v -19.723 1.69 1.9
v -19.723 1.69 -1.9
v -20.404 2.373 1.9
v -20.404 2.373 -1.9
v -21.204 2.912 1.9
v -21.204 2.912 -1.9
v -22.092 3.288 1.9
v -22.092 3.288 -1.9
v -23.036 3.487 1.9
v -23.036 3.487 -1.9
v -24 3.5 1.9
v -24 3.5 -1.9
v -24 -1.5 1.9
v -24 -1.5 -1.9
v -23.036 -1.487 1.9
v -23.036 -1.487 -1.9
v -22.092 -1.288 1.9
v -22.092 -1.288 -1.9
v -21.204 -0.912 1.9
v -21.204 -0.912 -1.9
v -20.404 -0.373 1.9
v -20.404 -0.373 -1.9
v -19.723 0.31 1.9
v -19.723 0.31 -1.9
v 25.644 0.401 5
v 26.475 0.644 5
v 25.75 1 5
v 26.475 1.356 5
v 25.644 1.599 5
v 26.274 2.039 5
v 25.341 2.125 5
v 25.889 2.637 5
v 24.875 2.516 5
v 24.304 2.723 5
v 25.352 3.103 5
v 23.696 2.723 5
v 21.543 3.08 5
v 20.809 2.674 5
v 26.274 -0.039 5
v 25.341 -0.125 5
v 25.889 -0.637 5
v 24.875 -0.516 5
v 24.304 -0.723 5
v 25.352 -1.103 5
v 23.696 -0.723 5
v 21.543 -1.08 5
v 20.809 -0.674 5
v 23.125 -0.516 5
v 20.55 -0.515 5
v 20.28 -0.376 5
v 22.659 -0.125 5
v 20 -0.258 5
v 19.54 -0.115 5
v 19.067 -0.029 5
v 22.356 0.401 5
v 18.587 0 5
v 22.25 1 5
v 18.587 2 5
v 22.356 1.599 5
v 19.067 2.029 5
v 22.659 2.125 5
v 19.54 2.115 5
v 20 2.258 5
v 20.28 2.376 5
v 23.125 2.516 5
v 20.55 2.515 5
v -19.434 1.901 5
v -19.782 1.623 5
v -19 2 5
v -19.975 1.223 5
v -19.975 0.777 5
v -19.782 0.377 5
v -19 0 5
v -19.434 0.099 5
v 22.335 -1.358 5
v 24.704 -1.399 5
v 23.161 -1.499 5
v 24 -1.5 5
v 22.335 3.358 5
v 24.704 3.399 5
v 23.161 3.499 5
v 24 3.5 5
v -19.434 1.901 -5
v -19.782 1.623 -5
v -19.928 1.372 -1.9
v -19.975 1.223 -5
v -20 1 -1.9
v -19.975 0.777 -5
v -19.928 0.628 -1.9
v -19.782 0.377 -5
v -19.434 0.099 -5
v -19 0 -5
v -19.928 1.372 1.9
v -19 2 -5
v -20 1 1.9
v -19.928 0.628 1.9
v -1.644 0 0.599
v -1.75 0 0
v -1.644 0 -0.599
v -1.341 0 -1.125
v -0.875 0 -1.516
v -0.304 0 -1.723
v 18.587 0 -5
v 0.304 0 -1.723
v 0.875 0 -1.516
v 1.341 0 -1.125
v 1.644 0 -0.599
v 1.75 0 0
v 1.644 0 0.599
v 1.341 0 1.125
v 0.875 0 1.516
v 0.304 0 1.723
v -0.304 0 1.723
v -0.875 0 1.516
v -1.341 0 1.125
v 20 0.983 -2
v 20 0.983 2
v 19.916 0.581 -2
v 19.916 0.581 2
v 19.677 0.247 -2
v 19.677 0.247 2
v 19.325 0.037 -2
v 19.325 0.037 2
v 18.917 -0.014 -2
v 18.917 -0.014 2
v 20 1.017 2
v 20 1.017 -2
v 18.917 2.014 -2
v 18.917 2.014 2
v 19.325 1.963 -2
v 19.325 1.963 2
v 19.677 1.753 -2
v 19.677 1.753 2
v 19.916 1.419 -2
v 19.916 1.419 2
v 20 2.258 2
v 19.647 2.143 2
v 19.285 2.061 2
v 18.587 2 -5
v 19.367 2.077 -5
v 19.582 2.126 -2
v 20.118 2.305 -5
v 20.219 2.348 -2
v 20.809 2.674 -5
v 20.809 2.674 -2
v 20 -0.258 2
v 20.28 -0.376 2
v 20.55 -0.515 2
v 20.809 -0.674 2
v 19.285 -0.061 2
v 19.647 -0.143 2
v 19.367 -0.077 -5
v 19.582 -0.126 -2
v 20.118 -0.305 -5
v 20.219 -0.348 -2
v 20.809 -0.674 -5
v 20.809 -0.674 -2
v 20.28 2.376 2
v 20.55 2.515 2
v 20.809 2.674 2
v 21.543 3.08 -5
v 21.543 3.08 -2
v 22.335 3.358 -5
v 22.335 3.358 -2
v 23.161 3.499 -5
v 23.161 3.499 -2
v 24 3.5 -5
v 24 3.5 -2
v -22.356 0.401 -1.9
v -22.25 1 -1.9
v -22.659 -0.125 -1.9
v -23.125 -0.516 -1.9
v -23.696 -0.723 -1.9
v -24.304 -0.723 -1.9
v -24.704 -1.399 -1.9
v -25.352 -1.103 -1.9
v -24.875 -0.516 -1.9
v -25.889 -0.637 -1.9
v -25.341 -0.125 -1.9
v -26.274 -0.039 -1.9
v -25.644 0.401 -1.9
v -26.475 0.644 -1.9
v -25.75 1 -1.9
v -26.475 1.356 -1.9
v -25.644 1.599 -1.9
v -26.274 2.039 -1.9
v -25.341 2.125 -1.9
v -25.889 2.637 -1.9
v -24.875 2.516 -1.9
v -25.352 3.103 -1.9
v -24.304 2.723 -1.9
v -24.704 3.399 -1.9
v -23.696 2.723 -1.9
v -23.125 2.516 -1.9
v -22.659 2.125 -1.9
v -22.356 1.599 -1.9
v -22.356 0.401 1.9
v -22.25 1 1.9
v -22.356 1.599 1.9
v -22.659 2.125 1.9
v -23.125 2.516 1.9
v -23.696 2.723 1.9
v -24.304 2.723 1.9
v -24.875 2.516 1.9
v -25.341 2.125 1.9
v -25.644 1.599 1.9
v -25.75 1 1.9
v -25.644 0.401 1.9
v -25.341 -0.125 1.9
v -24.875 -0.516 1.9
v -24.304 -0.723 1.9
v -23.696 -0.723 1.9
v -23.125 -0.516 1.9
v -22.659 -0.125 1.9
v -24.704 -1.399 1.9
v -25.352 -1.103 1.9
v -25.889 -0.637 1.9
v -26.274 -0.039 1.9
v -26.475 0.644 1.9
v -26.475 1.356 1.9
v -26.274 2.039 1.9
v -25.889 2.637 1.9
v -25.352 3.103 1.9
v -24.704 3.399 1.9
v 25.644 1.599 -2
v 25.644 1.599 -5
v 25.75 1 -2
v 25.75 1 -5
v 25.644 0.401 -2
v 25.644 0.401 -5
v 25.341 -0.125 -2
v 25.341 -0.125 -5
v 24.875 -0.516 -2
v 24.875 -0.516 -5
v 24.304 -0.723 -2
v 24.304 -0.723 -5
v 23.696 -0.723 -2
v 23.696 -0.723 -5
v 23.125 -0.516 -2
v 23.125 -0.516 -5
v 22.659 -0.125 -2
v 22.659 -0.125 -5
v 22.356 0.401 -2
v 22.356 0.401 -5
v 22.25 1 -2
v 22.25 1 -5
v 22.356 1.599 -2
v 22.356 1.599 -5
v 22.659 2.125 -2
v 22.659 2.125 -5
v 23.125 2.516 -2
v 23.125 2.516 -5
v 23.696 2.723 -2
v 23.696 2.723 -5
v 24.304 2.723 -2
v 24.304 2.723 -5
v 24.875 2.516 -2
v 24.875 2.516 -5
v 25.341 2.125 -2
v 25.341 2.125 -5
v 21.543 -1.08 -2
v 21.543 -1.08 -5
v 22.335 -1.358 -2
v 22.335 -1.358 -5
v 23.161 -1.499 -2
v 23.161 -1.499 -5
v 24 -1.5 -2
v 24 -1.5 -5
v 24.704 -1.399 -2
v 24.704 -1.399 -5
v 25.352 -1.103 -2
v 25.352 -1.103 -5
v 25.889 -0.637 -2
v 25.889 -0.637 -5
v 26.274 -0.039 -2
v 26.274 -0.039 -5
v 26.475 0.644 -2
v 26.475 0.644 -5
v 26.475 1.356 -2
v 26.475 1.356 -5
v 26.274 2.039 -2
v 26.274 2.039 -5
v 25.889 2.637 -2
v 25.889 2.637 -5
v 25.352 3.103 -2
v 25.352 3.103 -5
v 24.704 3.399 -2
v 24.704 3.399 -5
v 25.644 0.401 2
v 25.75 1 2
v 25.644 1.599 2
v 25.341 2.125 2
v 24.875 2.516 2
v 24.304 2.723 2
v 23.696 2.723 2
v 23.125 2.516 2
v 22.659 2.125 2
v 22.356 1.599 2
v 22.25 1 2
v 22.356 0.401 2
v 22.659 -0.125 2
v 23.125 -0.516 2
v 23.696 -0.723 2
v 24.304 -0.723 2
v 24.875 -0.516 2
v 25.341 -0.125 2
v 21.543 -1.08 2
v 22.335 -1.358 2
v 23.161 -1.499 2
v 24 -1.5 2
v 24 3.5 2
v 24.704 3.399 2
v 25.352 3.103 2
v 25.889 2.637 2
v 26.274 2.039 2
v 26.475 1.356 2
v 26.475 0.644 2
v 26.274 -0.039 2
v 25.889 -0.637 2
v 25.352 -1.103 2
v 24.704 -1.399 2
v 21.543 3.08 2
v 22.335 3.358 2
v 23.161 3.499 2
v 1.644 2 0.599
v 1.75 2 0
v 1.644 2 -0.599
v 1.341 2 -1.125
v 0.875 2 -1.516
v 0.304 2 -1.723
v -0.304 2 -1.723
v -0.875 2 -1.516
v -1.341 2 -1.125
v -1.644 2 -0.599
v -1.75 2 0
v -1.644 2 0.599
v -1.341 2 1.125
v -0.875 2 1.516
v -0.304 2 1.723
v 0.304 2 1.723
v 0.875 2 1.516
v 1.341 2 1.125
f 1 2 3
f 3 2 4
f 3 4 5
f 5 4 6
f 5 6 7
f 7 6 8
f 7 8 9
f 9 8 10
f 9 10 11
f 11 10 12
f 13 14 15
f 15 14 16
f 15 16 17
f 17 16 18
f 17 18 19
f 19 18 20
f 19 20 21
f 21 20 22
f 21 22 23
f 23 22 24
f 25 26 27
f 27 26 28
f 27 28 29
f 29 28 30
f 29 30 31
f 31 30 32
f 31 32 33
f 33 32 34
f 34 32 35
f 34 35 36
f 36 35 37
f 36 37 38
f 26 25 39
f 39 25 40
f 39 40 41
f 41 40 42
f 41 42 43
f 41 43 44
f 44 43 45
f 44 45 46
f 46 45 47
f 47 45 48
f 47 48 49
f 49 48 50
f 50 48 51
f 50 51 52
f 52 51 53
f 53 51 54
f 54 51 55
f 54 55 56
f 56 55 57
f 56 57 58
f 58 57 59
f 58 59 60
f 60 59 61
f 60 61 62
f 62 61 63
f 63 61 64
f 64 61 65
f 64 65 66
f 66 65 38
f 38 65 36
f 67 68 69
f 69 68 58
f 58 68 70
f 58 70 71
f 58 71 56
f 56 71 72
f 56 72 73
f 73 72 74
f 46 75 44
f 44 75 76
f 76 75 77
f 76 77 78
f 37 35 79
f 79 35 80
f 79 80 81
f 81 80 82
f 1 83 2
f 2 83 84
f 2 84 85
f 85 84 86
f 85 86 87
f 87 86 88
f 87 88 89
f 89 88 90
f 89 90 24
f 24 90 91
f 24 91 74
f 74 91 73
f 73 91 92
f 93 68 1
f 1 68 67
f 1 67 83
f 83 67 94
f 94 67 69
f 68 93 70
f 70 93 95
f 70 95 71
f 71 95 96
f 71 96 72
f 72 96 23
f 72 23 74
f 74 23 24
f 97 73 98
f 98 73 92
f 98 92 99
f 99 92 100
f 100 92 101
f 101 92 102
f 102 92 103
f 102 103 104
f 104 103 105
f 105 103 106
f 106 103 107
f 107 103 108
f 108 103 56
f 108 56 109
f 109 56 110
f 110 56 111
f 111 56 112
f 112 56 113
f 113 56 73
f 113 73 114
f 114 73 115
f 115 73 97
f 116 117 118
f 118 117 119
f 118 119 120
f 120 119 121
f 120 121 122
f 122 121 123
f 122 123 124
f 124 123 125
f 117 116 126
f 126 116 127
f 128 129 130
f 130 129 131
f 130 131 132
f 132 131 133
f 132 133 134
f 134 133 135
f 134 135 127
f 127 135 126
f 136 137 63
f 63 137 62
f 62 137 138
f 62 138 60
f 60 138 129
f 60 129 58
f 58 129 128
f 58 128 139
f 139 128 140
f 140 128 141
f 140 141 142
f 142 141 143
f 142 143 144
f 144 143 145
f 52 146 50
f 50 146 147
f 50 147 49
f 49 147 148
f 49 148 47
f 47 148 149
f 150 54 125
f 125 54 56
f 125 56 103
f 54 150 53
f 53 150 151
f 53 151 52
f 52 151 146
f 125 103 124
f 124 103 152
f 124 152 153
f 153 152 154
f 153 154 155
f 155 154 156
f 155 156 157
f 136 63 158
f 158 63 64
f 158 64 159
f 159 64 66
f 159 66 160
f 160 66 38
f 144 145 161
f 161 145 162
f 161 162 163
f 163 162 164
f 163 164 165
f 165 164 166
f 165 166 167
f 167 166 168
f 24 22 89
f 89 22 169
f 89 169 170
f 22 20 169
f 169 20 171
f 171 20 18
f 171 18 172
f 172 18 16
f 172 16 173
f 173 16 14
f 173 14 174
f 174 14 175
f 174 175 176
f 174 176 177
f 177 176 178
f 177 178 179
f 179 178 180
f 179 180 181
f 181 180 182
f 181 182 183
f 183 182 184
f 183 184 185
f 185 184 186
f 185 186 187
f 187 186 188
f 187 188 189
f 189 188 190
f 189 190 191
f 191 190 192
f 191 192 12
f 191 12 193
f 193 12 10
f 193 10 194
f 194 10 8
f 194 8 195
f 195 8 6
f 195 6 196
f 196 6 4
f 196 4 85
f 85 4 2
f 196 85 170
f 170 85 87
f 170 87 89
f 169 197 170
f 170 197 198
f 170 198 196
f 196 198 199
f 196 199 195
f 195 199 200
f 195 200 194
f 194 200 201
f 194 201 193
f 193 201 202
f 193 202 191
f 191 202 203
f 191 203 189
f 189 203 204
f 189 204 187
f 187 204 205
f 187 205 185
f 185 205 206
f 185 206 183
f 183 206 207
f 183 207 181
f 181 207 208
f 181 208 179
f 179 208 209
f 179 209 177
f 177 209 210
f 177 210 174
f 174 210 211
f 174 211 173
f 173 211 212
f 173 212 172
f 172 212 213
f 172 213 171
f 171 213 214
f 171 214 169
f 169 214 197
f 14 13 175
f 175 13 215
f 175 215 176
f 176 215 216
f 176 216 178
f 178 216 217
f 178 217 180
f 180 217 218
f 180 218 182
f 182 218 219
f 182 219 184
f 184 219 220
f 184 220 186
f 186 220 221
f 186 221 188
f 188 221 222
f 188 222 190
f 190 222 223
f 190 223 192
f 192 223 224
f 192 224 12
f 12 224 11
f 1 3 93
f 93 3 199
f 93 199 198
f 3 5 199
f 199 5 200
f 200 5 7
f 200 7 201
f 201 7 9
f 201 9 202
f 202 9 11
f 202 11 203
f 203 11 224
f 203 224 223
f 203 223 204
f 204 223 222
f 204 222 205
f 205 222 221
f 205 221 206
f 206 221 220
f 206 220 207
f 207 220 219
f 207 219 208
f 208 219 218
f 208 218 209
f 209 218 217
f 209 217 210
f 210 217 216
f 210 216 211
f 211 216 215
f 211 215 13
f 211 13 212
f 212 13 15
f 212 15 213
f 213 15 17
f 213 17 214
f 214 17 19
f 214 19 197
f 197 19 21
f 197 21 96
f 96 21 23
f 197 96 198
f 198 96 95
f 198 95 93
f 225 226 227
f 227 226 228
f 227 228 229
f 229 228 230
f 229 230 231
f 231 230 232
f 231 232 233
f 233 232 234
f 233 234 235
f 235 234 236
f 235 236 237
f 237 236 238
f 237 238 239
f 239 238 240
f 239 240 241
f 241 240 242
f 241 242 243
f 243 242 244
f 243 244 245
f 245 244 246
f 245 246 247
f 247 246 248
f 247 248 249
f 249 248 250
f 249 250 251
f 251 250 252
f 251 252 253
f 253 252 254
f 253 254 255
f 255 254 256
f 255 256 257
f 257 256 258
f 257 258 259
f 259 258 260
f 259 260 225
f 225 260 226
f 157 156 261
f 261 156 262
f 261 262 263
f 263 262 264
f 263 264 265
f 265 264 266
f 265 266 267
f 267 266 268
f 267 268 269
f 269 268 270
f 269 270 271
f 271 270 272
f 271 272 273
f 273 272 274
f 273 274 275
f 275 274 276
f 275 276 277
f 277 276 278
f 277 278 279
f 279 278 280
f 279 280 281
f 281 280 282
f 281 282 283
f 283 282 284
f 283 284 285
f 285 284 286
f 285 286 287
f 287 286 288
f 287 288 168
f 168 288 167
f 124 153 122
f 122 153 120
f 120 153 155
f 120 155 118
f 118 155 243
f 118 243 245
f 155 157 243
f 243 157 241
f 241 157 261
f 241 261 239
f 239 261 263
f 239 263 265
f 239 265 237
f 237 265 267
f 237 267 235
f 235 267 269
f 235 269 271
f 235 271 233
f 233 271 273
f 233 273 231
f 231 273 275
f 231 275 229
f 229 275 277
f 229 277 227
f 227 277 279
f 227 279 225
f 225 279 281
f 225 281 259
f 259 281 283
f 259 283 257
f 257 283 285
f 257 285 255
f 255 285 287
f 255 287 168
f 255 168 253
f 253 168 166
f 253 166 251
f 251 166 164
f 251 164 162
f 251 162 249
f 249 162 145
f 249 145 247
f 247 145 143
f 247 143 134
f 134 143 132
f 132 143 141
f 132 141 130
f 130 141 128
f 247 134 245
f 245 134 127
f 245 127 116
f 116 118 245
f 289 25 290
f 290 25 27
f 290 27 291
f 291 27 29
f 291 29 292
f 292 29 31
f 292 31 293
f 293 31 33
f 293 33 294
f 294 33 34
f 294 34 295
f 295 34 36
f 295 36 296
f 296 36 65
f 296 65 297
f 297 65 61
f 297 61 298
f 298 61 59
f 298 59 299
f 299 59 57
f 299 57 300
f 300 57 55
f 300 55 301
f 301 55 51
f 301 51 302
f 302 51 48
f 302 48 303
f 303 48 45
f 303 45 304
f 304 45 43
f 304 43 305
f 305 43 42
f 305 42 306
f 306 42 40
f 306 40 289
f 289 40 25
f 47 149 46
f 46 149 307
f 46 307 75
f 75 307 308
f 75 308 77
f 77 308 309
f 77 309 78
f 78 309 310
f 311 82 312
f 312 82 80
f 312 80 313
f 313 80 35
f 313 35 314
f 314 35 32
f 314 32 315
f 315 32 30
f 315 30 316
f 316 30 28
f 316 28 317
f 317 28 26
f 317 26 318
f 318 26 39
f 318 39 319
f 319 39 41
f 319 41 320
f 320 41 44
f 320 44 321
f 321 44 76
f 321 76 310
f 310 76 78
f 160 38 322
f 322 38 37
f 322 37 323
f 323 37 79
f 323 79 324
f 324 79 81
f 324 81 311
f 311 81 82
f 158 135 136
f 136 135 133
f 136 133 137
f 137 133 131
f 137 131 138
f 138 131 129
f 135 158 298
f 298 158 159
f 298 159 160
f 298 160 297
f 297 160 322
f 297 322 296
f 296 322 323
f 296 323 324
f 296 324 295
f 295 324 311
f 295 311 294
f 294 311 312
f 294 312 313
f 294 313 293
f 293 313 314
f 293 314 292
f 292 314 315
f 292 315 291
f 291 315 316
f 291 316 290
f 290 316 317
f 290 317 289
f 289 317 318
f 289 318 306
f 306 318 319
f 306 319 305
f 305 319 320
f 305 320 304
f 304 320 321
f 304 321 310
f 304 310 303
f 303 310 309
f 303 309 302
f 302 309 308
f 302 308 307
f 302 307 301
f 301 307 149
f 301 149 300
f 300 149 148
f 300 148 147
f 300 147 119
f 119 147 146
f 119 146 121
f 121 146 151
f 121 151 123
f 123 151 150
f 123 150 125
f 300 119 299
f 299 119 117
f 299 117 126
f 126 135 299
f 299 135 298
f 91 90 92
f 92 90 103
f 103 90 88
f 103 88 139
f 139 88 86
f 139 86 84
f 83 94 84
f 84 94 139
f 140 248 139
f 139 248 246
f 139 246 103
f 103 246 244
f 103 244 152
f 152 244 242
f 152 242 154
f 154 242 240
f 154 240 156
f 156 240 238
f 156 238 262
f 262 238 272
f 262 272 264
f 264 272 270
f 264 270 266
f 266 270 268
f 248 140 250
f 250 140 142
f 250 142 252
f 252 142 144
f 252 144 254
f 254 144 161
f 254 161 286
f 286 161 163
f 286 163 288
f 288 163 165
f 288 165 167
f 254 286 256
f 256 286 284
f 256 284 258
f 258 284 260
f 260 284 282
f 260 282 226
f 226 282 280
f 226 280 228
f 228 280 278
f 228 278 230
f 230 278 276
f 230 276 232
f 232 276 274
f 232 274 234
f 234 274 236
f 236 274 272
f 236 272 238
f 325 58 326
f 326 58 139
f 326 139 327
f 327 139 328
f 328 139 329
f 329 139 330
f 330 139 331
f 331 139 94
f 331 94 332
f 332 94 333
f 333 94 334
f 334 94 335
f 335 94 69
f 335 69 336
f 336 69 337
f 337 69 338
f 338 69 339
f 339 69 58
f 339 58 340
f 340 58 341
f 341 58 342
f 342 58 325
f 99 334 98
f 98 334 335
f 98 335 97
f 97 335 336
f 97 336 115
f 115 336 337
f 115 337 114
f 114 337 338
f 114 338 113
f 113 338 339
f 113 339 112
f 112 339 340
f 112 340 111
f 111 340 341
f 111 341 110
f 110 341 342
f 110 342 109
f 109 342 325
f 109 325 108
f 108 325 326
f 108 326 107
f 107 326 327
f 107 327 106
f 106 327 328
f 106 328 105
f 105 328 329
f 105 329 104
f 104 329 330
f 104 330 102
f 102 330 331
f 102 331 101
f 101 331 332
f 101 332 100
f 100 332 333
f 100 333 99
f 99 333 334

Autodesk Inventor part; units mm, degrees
ref_plane "YZ Plane" through (0, 0, 0) normal (1, 0, 0) x (0, 1, 0)
ref_plane "XZ Plane" through (0, 0, 0) normal (0, 1, 0) x (-1, 0, 0)
sketch "Szkic1" plane through (0, 0, 0) normal (0, 1, 0) x (-1, 0, 0)
  line L0 (-20, 5) -> (20, 5)
  line L1 (20, 5) -> (20, -5)
  line L2 (20, -5) -> (-20, -5)
  line L3 (-20, -5) -> (-20, 5)
  line L4 (-20, 5) -> (20, -5) construction
  line L5 (20, 5) -> (-20, -5) construction
  point P0 (0, 0)
  dimension "d0" = 40
  dimension "d1" = 10
extrude "Wyciągnięcie proste1" add sketch "Szkic1" along normal blind 2
sketch "Szkic2" plane through (-20, 0, 5) normal (0, 0, 1) x (1, 0, 0)
  line L0 (40, 0) -> (40, 2)
  line L1 (40, 1) -> (44, 1)
  line L2 (40, 1) -> (44, 1) construction
  circle A0 centre (44, 1) radius 1.75
  circle A1 centre (44, 1) radius 2.5
  line L3 (44, 3.5) -> (44, 3.5)
  line L4 (44, -1.5) -> (44, -1.5)
  arc A2 (44, 3.5) -> (40, 2) centre (43.5874, -1.4829) ccw
  arc A3 (40, 0) -> (44, -1.5) centre (43.5874, 3.4829) ccw
  line L5 (40, 2) -> (0, 2) projected
  line L6 (40, 0) -> (40, 2) projected
  line L7 (40, 2) -> (40, 0)
  line L8 (40, 2) -> (40, 0)
  line L9 (40, 1) -> (41.9498, 1)
  point P0 (20, 0)
  point P1 (44, 3.5)
  dimension "d4" = 4
  dimension "d5" = 0
  dimension "d6" = 3.5
  dimension "d7" = 5
  dimension "d8" = 0
  dimension "d9" = 0
  dimension "d10" = 5
  dimension "d11" = 5
extrude "Wyciągnięcie proste2" add sketch "Szkic2" against normal blind 3
ref_plane "Płaszczyzna konstrukcyjna1" through (-20, 0, 0) normal (0, 0, 1) x (1, 0, 0)
mirror "Odbij1" about plane through (-20, 0, 0) normal (0, 0, 1) of "Wyciągnięcie proste2"
sketch "Szkic3" plane through (-20, 0, 0) normal (0, 0, 1) x (1, 0, 0)
  line L0 (0, 0) -> (0, 2) projected
  line L1 (0, 2) -> (0, 0)
  line L2 (0, 2) -> (0, 0)
  line L3 (0, 1) -> (-4, 1)
  line L4 (0, 1) -> (-4, 1) construction
  circle A0 centre (-4, 1) radius 1.75
  circle A1 centre (-4, 1) radius 2.5
  line L5 (-4, -1.5) -> (-4, -1.5)
  line L6 (-4, 3.5) -> (-4, 3.5)
  arc A2 (-4, -1.5) -> (0, 0) centre (-3.5874, 3.4829) ccw
  arc A3 (0, 2) -> (-4, 3.5) centre (-3.5874, -1.4829) ccw
  line L7 (0, 1) -> (-2.4782, 1)
  point P0 (20, 0)
  point P1 (-4, -1.5)
  point P2 (-4, 3.5)
  dimension "d16" = 4
  dimension "d17" = 0
  dimension "d18" = 3.5
  dimension "d19" = 5
  dimension "d20" = 0
  dimension "d21" = 0
  dimension "d22" = 5
  dimension "d23" = 5
extrude "Wyciągnięcie proste3" add sketch "Szkic3" along normal mid plane 3.8
fillet "Zaokrąglenie1" radius 4 4 edges at (20, 2, -3.5) (20, 2, 3.5) (20, 0, -3.5) (20, 0, 3.5)
fillet "Zaokrąglenie2" radius 1 2 edges at (20, 2.258, 0) (20, -0.258, 0)
fillet "Zaokrąglenie3" radius 1 4 edges at (-20, 0, 3.45) (-20, 2, 3.45) (-20, 0, -3.45) (-20, 2, -3.45)
sketch "Szkic4" plane through (0, 2, 0) normal (0, 1, 0) x (1, 0, 0)
  line L0 (-19, 5) -> (-19, -5) projected
  line L1 (-19, 0) -> (18.5868, 0)
  line L2 (18.5868, 5) -> (18.5868, -5) projected
  circle A0 centre (0, 0) radius 1.75
  dimension "d29" = 3.5
extrude "Wyciągnięcie proste4" cut sketch "Szkic4" against normal blind 10
properties part number "lamp_link"
